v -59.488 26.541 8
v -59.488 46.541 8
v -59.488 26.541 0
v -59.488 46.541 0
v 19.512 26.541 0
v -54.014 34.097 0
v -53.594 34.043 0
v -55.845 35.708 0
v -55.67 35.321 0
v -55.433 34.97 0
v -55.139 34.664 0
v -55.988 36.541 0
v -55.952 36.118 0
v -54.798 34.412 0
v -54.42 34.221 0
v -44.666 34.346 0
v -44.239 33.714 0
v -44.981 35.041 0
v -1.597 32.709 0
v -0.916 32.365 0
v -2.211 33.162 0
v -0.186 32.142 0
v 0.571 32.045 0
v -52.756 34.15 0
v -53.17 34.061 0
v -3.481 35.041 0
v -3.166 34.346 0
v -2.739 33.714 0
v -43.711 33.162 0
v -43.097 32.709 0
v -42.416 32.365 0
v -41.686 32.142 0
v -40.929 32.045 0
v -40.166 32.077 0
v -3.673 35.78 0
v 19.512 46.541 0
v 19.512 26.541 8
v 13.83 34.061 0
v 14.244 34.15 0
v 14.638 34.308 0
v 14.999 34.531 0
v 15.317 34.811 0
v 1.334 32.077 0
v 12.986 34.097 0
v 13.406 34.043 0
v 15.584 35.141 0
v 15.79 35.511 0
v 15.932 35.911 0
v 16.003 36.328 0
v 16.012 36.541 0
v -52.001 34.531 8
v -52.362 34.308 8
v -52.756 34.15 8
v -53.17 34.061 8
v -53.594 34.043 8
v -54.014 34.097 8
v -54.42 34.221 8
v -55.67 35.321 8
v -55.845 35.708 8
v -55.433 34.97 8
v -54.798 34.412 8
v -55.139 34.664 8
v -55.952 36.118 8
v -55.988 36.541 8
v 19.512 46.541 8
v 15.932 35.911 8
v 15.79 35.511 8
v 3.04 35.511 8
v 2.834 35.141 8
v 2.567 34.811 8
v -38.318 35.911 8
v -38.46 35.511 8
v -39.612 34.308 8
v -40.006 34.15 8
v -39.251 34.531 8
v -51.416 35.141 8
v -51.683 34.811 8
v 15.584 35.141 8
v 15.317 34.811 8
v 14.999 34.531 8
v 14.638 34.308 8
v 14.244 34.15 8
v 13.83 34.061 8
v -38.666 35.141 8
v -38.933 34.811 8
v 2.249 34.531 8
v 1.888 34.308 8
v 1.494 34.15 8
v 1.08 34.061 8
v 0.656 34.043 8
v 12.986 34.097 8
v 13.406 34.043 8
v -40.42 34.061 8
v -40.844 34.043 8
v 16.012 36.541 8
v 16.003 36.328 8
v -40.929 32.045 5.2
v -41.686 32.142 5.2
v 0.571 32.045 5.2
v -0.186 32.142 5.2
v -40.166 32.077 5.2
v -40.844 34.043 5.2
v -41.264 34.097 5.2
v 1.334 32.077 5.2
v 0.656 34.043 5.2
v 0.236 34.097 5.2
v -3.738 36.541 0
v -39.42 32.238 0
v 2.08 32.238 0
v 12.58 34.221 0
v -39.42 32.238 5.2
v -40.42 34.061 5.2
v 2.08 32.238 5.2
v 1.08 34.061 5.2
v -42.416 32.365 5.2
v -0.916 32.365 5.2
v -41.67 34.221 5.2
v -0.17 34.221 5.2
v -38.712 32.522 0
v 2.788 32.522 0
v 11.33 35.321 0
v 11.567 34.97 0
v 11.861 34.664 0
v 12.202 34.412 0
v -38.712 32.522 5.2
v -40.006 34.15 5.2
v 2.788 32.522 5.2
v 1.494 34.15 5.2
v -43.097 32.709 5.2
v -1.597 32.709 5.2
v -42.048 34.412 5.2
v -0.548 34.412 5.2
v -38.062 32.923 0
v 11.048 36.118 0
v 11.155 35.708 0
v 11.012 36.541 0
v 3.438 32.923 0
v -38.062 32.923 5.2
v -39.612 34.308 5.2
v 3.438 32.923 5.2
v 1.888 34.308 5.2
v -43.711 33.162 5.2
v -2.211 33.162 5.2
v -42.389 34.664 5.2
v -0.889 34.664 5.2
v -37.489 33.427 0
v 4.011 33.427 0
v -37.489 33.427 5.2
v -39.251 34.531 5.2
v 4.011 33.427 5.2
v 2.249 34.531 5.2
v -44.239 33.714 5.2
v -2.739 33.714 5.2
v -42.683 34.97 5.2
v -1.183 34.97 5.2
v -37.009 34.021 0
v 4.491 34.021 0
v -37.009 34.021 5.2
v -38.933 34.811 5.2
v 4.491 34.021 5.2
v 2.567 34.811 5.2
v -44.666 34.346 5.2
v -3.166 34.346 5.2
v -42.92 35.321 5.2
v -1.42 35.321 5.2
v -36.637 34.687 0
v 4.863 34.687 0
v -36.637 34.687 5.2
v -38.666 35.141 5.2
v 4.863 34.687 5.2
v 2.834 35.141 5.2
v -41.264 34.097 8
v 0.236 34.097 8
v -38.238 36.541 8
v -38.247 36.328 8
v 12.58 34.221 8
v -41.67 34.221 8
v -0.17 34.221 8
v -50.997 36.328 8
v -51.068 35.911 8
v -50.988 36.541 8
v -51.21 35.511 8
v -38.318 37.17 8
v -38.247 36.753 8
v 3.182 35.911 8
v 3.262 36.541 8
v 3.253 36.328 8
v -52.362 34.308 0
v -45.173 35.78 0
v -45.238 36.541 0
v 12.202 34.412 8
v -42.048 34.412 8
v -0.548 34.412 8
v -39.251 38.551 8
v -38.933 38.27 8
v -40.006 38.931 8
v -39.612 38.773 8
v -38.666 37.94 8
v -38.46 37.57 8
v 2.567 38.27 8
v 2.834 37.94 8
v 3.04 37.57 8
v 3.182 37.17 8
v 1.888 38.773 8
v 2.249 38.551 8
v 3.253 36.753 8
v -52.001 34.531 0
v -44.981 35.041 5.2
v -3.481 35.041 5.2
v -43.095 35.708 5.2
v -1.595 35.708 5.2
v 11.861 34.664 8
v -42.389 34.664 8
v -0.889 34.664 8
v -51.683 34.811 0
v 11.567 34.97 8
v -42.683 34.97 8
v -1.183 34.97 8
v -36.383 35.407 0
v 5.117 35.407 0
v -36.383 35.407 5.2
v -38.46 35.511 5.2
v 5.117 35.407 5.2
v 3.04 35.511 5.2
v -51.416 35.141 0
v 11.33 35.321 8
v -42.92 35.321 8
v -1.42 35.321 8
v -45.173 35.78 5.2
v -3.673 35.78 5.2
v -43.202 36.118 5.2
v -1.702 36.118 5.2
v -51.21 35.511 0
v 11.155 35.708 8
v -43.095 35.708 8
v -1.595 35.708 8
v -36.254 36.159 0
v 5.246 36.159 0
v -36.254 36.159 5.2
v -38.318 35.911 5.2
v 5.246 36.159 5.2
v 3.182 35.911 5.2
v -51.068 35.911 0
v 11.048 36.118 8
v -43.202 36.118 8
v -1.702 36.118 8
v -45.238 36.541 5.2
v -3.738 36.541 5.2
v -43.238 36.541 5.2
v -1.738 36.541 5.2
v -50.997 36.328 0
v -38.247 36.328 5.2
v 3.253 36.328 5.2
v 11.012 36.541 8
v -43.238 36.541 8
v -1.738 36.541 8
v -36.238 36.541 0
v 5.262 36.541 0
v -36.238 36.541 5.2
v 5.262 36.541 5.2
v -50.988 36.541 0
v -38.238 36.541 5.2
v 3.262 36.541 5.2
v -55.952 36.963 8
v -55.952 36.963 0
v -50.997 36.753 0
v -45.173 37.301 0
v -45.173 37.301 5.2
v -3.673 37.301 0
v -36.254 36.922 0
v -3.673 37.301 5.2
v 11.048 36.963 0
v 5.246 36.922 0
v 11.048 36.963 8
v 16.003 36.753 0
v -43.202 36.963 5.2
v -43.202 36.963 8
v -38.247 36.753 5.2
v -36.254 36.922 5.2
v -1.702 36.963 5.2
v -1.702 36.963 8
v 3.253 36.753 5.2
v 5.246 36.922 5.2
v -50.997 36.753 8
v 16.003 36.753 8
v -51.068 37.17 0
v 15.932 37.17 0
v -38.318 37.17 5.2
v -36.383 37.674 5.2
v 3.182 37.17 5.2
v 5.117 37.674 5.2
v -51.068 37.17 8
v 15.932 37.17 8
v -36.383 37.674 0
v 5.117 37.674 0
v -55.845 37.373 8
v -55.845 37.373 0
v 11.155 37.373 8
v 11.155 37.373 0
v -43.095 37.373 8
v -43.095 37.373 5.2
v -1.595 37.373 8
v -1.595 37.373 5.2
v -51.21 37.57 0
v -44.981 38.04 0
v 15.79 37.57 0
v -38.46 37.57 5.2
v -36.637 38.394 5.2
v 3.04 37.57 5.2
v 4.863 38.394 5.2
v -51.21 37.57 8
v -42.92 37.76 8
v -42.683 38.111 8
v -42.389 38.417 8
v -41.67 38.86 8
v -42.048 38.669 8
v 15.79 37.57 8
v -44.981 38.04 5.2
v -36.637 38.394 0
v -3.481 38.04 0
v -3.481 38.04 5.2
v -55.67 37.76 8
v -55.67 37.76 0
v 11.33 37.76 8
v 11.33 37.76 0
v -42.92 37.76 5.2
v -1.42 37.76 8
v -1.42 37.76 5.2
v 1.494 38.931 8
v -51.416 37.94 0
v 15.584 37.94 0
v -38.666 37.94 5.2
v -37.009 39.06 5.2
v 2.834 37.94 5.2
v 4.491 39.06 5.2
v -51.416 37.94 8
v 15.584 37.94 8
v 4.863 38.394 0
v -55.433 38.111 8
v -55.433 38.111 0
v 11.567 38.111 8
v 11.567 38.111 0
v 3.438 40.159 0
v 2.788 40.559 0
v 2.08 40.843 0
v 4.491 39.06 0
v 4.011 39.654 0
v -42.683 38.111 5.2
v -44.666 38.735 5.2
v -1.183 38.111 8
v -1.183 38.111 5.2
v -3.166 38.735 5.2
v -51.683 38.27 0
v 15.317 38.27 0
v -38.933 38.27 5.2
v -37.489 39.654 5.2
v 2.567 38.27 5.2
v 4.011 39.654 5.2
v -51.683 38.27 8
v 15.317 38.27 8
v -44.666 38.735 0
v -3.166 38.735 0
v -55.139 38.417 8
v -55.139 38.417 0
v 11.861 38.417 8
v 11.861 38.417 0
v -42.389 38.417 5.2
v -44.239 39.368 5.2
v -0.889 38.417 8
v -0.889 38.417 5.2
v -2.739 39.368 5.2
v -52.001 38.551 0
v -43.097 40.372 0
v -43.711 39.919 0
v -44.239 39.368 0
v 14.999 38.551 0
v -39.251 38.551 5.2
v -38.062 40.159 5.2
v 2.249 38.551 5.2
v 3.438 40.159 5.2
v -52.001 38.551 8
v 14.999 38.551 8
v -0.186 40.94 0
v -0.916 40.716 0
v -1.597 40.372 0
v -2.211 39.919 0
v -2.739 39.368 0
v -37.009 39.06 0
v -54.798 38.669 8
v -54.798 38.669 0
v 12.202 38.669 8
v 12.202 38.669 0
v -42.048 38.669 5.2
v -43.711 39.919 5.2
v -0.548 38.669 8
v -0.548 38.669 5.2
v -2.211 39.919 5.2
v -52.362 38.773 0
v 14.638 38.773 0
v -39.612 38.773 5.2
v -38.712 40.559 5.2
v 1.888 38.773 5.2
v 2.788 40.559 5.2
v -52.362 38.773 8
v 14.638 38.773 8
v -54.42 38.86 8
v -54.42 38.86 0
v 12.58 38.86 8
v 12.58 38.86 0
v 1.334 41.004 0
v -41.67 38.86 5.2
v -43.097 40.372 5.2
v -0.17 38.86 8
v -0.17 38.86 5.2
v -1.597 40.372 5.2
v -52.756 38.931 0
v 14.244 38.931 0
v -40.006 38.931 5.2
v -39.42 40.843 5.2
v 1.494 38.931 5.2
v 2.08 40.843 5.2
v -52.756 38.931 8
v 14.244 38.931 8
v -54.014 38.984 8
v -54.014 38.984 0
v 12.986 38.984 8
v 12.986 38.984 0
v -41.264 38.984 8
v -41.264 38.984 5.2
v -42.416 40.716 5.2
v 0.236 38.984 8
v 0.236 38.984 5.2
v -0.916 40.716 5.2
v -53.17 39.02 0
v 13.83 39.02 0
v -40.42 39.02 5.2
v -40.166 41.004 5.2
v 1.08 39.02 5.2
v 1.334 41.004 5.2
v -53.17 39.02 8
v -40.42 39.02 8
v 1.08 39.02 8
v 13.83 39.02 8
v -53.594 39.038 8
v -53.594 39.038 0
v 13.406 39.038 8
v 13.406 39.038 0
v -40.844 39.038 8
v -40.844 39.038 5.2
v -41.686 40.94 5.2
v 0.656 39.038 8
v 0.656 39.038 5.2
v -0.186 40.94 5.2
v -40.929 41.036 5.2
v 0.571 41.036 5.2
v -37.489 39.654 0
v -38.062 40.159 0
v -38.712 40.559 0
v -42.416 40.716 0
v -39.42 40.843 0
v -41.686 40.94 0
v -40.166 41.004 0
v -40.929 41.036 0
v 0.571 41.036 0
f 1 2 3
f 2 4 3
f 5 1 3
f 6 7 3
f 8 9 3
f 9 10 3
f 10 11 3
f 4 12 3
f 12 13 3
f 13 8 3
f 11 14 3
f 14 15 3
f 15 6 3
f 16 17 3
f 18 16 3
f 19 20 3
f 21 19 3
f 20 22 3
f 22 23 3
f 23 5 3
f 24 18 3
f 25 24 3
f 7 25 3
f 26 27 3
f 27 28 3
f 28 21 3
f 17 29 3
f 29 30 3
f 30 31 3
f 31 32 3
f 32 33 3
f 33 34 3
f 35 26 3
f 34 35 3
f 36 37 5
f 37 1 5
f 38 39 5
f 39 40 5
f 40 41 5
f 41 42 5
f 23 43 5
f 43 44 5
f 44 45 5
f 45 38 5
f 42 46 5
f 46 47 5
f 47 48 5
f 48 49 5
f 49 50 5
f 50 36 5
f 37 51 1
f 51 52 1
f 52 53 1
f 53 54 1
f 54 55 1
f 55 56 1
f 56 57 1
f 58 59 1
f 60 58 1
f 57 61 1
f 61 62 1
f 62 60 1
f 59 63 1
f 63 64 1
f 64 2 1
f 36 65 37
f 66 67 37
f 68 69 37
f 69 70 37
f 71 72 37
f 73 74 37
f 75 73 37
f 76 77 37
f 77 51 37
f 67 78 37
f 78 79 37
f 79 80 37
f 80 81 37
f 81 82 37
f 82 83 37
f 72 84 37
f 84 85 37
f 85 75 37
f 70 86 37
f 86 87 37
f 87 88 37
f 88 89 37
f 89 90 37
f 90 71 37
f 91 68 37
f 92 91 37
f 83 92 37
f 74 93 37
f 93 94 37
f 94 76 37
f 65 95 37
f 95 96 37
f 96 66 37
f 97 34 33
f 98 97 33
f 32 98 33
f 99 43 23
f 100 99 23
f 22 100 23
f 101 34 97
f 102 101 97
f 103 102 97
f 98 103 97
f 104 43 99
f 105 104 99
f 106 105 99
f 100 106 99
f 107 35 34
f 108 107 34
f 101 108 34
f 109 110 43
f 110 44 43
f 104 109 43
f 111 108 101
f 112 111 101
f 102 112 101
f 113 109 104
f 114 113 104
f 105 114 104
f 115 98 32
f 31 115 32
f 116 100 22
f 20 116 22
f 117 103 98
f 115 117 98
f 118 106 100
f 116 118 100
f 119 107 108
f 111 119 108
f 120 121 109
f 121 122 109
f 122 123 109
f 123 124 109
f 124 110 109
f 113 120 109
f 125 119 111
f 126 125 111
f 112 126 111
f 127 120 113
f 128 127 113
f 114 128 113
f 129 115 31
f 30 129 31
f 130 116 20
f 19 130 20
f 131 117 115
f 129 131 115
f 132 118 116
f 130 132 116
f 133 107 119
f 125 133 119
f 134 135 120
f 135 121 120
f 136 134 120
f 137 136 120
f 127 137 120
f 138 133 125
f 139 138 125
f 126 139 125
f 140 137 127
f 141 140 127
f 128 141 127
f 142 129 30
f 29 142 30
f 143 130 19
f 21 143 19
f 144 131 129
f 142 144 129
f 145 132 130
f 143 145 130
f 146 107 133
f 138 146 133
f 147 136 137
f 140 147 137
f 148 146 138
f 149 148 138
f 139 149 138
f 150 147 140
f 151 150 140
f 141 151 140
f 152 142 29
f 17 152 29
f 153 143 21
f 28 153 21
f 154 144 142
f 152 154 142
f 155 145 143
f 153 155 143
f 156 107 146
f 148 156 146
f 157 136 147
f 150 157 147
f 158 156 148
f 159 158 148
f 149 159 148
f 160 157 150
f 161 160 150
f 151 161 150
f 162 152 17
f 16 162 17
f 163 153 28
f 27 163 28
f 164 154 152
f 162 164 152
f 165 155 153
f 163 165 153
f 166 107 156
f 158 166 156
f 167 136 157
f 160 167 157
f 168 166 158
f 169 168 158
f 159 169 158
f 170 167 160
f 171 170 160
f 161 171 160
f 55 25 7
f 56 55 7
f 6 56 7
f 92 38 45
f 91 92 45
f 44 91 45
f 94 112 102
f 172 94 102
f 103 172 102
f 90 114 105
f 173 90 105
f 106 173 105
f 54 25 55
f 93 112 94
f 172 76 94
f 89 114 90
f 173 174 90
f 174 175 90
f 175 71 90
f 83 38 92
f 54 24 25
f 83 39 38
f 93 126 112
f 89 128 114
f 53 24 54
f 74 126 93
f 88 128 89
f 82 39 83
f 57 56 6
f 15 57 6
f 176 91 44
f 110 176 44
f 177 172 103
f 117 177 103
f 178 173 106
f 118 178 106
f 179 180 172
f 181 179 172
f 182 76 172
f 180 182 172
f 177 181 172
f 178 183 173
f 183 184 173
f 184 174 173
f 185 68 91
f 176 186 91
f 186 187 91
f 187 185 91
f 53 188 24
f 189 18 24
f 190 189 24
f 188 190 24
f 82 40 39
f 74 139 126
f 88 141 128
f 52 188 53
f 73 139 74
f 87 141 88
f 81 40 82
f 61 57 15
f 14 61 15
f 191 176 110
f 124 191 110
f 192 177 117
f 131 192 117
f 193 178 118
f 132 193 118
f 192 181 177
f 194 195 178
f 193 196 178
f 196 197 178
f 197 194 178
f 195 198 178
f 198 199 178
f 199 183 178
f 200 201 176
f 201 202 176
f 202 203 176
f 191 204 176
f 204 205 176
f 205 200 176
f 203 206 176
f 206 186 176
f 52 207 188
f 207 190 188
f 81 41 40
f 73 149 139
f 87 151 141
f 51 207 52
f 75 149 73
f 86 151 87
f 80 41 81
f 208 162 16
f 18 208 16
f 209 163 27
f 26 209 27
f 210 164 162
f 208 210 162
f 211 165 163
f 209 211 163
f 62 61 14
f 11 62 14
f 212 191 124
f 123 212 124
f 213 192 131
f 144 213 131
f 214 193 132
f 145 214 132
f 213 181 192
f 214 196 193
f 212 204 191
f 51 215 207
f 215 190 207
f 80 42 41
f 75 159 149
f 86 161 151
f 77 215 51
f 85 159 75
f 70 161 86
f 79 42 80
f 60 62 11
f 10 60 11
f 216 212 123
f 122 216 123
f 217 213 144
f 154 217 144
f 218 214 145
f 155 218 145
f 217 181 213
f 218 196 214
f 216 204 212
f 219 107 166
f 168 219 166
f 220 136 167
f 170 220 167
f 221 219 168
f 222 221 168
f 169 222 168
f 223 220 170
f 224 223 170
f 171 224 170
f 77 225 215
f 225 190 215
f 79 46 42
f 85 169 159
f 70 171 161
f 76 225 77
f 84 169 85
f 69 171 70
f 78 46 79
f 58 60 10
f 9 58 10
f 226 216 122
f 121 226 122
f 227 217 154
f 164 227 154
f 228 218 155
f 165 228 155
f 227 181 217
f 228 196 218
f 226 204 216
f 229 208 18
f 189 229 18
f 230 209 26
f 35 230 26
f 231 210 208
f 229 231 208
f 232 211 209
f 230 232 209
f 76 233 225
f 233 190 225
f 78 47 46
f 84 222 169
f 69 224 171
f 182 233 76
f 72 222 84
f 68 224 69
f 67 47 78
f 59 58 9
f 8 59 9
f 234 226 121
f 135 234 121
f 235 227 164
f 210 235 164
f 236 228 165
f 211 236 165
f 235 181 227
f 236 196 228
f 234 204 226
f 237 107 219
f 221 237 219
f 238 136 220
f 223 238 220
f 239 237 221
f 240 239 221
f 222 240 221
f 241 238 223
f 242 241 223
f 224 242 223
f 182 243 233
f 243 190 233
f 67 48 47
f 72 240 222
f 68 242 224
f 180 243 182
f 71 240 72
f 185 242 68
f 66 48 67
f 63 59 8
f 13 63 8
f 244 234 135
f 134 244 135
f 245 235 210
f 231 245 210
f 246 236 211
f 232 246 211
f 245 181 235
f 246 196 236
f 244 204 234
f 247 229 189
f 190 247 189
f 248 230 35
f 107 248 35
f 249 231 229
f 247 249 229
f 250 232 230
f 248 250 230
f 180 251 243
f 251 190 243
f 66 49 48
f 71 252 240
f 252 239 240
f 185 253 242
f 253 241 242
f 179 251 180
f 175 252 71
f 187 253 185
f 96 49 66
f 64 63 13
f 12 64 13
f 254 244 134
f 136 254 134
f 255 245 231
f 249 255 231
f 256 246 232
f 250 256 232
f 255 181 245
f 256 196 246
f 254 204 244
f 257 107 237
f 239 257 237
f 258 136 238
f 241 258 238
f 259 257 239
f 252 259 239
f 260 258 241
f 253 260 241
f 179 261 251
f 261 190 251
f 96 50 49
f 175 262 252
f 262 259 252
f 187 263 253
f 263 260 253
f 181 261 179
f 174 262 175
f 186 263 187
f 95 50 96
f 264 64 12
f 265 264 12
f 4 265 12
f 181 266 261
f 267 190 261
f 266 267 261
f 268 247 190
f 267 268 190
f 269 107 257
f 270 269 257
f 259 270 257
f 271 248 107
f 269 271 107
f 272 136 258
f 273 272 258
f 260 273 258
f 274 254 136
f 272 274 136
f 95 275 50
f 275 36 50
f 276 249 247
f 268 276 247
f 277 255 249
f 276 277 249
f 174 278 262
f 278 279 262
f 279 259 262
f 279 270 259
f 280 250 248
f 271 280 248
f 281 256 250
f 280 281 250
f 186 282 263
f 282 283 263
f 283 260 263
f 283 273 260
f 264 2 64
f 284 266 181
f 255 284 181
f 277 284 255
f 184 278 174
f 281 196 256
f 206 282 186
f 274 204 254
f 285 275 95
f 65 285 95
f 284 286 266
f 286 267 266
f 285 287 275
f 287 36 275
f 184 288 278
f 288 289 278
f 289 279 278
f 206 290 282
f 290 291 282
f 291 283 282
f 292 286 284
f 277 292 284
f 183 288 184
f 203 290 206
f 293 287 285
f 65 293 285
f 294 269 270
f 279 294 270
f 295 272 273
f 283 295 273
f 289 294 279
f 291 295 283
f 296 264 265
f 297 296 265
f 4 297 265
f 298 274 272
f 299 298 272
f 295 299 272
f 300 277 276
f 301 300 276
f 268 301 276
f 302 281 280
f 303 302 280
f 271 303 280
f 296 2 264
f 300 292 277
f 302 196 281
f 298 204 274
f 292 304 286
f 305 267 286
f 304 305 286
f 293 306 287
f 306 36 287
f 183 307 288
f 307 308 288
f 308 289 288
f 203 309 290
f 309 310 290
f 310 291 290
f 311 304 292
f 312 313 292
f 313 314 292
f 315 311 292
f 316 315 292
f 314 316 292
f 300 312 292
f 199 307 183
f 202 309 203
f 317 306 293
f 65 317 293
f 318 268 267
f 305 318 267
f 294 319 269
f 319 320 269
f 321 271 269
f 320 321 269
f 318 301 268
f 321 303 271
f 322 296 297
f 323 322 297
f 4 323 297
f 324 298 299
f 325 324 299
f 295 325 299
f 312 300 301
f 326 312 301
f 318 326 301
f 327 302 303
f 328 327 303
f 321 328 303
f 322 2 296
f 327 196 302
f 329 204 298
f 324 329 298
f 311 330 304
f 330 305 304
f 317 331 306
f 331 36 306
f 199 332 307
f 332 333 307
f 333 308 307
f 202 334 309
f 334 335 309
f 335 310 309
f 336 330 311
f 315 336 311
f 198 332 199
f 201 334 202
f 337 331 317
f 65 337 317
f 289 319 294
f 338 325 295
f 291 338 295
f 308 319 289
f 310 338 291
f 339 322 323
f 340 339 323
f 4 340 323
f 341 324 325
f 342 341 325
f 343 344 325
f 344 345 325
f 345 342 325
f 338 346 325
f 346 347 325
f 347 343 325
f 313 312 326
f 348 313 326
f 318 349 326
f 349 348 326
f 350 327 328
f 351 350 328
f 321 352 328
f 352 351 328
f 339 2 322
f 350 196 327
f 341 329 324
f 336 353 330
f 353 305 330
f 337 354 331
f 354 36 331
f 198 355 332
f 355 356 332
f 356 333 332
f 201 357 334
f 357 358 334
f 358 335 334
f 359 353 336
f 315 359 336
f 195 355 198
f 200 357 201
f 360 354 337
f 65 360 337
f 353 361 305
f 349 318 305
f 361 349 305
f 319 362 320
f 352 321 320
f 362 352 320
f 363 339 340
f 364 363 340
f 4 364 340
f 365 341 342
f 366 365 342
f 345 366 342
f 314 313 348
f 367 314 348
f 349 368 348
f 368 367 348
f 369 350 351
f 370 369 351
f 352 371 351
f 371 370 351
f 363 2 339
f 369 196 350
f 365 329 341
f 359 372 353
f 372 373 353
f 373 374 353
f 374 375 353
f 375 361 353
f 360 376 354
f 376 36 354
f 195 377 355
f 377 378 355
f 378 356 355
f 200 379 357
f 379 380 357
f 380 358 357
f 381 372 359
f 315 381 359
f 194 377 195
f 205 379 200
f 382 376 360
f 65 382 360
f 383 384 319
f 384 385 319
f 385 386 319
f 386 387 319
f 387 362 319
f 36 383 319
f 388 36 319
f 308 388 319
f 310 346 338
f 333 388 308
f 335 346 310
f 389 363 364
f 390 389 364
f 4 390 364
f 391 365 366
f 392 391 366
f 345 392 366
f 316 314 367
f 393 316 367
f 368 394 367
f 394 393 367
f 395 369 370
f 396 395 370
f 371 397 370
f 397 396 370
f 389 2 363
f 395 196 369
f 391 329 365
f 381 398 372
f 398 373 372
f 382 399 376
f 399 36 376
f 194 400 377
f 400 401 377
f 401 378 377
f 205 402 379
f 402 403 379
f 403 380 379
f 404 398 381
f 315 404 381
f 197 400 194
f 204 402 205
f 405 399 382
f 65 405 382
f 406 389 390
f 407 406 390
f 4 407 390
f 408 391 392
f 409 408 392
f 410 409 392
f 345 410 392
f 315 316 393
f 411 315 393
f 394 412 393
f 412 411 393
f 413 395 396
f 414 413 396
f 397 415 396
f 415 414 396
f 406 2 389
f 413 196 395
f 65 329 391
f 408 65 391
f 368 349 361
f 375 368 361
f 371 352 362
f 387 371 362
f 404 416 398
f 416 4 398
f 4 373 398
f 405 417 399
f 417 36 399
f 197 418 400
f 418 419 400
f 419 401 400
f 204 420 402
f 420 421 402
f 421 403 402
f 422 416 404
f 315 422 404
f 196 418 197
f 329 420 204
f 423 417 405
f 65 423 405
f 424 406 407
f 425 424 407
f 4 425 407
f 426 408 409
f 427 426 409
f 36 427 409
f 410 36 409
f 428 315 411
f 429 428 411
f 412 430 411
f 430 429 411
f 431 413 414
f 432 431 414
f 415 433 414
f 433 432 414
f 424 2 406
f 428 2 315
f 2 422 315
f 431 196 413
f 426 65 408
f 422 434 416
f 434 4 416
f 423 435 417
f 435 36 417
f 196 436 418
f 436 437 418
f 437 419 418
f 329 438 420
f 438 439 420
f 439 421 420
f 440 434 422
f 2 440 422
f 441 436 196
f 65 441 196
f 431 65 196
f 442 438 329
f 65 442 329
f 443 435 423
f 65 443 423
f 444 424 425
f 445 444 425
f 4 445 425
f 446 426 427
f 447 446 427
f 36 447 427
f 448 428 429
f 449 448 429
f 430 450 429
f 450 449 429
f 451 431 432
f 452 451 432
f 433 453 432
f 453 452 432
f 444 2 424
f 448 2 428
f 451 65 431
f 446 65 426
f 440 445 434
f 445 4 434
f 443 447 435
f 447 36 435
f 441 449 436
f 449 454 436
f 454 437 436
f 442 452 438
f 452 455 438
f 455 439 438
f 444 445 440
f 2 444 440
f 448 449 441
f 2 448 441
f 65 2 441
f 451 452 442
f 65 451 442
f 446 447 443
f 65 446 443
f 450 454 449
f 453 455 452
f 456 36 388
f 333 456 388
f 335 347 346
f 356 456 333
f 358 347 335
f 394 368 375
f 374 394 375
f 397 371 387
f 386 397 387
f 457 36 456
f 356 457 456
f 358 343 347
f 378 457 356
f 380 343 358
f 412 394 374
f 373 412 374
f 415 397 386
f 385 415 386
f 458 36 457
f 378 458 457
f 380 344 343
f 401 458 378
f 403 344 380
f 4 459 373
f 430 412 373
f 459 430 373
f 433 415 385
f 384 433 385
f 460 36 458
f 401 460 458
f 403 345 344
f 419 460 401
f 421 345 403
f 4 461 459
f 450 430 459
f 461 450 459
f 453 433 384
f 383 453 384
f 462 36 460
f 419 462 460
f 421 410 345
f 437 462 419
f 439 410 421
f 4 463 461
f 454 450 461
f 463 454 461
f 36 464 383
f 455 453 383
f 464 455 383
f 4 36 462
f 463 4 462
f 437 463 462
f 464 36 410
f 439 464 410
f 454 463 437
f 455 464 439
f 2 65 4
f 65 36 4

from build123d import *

# Parameters (mm, degrees)
SKETCH_1_W          = 79
SKETCH_1_H          = 20
SKETCH_1_R          = 2.5
EXTRUDE_1_DEPTH     = 8
SKETCH_1_3_R        = 4.5
CUT_EXTRUDE_1_DEPTH = 5.2
SKETCH_1_4_R        = 4.5
CUT_EXTRUDE_2_DEPTH = 5.2


with BuildPart() as part:
    # 草图1 → 凸台-拉伸1 (new body)
    with BuildSketch(Plane.XY):
        with Locations((-19.987727126, 36.540514884)):
            Rectangle(SKETCH_1_W, SKETCH_1_H)
        with Locations((-40.737727126, 36.540514884)):
            Circle(SKETCH_1_R, mode=Mode.SUBTRACT)
        with Locations((-53.487727126, 36.540514884)):
            Circle(SKETCH_1_R, mode=Mode.SUBTRACT)
        with Locations((13.512272874, 36.540514884)):
            Circle(SKETCH_1_R, mode=Mode.SUBTRACT)
        with Locations((0.762272874, 36.540514884)):
            Circle(SKETCH_1_R, mode=Mode.SUBTRACT)
    extrude(amount=EXTRUDE_1_DEPTH)

    # 草图1<3> → 切除-拉伸1 (cut)
    with BuildSketch(Plane.XY):
        with Locations((0.762272874, 36.540514884)):
            Circle(SKETCH_1_3_R)
    extrude(amount=CUT_EXTRUDE_1_DEPTH, mode=Mode.SUBTRACT)

    # 草图1<4> → 切除-拉伸2 (cut)
    with BuildSketch(Plane.XY):
        with Locations((-40.737727126, 36.540514884)):
            Circle(SKETCH_1_4_R)
    extrude(amount=CUT_EXTRUDE_2_DEPTH, mode=Mode.SUBTRACT)


solid = part.part
